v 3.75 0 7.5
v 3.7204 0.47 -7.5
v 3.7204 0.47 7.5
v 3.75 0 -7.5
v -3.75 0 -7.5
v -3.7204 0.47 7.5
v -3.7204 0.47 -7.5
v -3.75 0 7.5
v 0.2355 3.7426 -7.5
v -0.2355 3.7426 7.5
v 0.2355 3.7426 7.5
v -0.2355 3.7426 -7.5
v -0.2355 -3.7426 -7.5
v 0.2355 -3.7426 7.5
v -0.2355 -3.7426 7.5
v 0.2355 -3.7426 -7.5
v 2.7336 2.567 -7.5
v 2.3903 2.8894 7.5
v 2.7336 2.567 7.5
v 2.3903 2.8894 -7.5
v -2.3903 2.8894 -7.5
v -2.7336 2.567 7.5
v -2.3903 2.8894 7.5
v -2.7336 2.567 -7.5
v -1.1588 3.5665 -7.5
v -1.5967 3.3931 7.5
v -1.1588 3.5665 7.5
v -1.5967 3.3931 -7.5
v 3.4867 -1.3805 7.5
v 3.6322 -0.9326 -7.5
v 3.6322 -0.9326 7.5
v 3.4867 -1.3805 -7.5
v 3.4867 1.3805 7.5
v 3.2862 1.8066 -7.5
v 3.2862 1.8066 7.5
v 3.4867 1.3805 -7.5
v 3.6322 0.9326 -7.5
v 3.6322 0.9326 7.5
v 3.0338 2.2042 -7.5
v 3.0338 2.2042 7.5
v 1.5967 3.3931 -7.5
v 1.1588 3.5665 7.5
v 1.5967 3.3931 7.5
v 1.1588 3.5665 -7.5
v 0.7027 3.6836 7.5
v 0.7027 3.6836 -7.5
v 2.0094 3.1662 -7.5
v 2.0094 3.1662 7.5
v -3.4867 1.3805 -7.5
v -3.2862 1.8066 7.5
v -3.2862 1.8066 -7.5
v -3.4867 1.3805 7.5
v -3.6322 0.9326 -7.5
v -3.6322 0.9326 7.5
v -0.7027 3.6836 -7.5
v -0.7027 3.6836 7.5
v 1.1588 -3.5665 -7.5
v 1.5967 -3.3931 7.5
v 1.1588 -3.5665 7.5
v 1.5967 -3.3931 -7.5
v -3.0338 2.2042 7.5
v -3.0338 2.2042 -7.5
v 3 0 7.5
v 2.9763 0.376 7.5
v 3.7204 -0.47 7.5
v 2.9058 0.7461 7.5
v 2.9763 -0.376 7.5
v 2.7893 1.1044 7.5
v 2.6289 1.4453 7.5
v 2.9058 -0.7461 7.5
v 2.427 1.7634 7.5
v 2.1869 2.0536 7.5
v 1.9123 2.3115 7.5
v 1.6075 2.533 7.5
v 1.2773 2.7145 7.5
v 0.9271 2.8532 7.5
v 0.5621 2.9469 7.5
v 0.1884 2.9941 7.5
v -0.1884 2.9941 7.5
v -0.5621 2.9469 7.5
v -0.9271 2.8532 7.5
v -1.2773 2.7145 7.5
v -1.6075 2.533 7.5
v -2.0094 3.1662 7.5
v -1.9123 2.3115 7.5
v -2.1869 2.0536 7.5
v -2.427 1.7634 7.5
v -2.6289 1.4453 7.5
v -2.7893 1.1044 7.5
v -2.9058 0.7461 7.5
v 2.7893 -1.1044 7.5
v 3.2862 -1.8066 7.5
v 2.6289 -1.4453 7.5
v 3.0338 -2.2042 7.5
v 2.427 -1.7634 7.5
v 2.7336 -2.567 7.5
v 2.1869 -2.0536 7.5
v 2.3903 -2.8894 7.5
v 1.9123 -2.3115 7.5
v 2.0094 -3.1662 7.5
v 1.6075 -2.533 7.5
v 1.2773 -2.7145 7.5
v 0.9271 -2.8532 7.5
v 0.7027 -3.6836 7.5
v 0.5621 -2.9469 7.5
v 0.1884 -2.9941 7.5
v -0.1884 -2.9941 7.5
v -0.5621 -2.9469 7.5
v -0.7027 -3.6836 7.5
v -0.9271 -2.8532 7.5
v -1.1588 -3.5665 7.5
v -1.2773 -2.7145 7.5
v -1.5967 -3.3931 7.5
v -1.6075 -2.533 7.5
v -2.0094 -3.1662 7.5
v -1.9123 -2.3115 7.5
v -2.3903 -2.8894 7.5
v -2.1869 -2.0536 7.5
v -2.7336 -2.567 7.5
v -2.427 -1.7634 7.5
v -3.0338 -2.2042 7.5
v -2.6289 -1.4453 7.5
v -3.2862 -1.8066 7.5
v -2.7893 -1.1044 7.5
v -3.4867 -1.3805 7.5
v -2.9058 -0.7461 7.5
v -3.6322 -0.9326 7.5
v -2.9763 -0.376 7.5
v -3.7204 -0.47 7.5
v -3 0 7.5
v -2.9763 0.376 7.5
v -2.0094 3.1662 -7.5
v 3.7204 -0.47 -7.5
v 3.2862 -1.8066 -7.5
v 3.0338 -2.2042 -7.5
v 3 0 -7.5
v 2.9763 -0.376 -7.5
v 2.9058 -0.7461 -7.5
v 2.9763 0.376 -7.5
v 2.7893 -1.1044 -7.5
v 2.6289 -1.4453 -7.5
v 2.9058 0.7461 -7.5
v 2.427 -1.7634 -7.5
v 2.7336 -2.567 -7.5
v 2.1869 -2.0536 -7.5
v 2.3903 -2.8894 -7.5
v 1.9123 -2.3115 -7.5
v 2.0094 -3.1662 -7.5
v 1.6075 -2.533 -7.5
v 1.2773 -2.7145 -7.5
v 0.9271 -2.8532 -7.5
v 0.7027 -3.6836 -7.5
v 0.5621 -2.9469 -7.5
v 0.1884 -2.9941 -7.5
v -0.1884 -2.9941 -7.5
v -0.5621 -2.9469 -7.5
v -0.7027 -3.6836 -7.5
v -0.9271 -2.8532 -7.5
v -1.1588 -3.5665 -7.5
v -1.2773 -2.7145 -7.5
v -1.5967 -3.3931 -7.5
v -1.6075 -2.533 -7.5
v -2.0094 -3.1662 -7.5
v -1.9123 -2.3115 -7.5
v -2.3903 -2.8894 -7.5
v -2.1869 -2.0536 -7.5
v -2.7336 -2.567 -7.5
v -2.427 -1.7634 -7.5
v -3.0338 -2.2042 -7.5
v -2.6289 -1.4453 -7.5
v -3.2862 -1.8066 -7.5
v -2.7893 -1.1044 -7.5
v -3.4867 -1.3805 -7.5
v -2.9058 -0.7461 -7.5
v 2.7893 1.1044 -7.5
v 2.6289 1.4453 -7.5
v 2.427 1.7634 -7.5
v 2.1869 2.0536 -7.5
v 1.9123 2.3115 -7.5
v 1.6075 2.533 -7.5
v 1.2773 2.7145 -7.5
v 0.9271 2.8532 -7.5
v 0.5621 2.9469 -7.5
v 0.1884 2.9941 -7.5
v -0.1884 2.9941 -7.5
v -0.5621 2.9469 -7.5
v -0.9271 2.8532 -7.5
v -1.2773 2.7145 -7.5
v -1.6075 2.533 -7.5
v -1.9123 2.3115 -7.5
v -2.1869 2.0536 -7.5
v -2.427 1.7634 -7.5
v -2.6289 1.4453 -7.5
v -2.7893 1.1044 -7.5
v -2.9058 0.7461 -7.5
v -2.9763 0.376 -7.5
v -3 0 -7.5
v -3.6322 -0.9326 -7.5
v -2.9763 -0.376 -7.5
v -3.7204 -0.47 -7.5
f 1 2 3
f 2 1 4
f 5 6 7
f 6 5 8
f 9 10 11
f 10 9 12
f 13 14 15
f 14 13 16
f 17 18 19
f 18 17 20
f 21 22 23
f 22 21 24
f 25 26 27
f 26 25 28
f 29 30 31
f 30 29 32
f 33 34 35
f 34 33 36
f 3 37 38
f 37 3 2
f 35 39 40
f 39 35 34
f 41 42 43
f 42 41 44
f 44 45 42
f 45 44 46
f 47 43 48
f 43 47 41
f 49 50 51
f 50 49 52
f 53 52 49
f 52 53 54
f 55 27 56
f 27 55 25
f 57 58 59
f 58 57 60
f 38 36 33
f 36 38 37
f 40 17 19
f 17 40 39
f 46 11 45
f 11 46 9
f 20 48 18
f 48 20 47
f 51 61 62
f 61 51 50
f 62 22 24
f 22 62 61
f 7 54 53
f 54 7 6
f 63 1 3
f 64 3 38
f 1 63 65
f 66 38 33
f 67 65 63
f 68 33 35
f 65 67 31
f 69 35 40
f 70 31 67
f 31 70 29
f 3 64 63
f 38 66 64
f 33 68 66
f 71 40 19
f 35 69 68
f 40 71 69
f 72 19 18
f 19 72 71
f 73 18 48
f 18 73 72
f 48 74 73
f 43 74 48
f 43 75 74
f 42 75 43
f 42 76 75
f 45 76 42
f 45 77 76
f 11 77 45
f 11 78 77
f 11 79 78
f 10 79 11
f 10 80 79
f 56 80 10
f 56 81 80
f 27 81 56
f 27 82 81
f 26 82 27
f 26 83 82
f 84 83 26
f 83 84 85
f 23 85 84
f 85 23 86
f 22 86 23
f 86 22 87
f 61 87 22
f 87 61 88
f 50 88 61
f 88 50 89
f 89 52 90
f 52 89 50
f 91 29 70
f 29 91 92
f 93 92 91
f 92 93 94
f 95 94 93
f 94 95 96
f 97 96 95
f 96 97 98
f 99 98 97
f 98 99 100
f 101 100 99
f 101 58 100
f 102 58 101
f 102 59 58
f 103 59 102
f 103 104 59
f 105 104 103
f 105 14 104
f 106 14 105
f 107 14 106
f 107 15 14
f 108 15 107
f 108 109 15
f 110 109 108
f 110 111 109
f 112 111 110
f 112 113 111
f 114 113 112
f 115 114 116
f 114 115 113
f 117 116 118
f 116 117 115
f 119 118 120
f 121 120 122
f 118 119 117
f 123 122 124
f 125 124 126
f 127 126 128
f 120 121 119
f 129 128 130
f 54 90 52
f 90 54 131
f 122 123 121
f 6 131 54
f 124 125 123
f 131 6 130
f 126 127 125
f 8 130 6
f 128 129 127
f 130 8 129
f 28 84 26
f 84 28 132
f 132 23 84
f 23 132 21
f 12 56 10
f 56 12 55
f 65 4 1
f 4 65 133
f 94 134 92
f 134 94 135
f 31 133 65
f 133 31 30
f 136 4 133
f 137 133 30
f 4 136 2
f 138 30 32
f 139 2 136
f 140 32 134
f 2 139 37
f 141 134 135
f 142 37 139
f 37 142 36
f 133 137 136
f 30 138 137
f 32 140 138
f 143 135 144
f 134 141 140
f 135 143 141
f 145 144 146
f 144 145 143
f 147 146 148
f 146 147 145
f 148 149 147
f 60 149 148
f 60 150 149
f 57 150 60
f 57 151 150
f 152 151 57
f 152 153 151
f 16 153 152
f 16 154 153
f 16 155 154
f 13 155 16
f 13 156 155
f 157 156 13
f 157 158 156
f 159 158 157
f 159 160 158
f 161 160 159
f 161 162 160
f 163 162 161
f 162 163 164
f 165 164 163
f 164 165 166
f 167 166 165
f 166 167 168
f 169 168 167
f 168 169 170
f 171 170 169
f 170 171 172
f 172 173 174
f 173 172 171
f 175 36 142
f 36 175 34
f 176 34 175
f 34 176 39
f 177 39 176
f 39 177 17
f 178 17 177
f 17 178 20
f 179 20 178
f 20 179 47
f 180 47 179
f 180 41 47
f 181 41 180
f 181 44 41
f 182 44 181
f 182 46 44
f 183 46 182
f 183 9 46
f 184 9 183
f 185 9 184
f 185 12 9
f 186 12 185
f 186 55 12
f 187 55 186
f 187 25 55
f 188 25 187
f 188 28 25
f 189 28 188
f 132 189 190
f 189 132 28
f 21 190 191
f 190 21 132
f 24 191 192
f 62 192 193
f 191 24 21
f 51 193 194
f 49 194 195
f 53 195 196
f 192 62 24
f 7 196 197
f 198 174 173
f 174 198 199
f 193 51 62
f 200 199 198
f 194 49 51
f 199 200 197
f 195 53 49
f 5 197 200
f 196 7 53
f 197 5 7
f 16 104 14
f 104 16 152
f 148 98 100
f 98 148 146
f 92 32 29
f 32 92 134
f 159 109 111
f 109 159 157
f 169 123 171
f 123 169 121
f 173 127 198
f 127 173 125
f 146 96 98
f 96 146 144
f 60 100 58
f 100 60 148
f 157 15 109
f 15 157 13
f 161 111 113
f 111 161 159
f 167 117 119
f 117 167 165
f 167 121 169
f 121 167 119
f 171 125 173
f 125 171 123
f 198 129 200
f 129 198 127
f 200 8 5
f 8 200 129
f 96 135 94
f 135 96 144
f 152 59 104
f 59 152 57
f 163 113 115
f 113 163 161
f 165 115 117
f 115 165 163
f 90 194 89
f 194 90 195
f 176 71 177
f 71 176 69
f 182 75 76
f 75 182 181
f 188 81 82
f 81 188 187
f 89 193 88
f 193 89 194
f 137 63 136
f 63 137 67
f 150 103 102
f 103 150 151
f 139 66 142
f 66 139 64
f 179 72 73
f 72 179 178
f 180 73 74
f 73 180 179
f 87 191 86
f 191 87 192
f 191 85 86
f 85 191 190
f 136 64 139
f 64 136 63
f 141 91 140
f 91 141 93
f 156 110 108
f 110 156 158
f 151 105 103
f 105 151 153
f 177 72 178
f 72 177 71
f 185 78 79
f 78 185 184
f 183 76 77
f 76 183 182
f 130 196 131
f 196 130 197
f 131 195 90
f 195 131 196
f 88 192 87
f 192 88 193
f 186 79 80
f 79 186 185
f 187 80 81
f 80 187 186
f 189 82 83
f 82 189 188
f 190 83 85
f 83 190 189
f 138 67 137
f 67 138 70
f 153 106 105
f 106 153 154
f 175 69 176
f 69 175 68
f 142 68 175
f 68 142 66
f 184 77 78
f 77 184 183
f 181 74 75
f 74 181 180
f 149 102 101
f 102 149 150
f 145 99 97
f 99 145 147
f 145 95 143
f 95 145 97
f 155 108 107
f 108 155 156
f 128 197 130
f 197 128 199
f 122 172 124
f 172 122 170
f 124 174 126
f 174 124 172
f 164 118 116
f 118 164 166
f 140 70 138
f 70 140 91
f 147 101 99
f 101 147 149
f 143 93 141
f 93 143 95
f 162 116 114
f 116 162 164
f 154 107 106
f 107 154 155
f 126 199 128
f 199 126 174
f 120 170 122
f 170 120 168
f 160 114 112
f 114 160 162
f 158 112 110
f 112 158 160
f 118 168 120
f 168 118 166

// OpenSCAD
$fn = 50;


difference() {
	union() {
		translate(v = [0, 0, -7.5000000000]) {
			cylinder(h = 15, r = 3.7500000000);
		}
	}
	union() {
		translate(v = [0, 0, -100.0000000000]) {
			cylinder(h = 200, r = 3.0000000000);
		}
	}
}
